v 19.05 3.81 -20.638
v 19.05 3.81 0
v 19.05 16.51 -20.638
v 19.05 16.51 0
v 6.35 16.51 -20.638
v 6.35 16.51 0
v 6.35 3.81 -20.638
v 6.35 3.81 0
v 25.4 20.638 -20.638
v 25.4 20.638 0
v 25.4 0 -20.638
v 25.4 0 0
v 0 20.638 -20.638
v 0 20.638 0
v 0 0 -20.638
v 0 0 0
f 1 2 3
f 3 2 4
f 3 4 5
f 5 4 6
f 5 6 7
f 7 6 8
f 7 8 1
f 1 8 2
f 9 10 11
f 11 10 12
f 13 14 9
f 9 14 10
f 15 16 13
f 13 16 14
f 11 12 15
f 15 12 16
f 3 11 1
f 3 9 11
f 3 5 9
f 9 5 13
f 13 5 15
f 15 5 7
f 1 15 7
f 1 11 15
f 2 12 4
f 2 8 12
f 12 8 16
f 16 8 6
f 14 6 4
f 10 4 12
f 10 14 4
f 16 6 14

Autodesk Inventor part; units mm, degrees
ref_plane "YZ Plane" through (0, 0, 0) normal (1, 0, 0) x (0, 1, 0)
ref_plane "XZ Plane" through (0, 0, 0) normal (0, 1, 0) x (-1, 0, 0)
ref_plane "XY Plane" through (0, 0, 0) normal (0, 0, 1) x (1, 0, 0)
sketch "Sketch1" plane through (0, 0, 0) normal (0, 0, 1) x (1, 0, 0)
  line L0 (0, 0) -> (25.4, 0)
  line L1 (25.4, 0) -> (25.4, 20.6375)
  line L2 (25.4, 20.6375) -> (0, 20.6375)
  line L3 (0, 20.6375) -> (0, 0)
  line L4 (6.35, 3.81) -> (19.05, 3.81)
  line L5 (19.05, 3.81) -> (19.05, 16.51)
  line L6 (19.05, 16.51) -> (6.35, 16.51)
  line L7 (6.35, 16.51) -> (6.35, 3.81)
  point P0 (0, 10.3188)
  point P1 (12.7, 20.6375)
  dimension "d0" = 25.4
  dimension "d1" = 20.6375
  dimension "d22" = 12.7
  dimension "d23" = 12.7
  dimension "d24" = 6.35
  dimension "d25" = 4.1275
extrude "Extrusion2" add sketch "Sketch1" against normal blind 20.6375
properties part number "Wheel_axle_inner_spacer"
